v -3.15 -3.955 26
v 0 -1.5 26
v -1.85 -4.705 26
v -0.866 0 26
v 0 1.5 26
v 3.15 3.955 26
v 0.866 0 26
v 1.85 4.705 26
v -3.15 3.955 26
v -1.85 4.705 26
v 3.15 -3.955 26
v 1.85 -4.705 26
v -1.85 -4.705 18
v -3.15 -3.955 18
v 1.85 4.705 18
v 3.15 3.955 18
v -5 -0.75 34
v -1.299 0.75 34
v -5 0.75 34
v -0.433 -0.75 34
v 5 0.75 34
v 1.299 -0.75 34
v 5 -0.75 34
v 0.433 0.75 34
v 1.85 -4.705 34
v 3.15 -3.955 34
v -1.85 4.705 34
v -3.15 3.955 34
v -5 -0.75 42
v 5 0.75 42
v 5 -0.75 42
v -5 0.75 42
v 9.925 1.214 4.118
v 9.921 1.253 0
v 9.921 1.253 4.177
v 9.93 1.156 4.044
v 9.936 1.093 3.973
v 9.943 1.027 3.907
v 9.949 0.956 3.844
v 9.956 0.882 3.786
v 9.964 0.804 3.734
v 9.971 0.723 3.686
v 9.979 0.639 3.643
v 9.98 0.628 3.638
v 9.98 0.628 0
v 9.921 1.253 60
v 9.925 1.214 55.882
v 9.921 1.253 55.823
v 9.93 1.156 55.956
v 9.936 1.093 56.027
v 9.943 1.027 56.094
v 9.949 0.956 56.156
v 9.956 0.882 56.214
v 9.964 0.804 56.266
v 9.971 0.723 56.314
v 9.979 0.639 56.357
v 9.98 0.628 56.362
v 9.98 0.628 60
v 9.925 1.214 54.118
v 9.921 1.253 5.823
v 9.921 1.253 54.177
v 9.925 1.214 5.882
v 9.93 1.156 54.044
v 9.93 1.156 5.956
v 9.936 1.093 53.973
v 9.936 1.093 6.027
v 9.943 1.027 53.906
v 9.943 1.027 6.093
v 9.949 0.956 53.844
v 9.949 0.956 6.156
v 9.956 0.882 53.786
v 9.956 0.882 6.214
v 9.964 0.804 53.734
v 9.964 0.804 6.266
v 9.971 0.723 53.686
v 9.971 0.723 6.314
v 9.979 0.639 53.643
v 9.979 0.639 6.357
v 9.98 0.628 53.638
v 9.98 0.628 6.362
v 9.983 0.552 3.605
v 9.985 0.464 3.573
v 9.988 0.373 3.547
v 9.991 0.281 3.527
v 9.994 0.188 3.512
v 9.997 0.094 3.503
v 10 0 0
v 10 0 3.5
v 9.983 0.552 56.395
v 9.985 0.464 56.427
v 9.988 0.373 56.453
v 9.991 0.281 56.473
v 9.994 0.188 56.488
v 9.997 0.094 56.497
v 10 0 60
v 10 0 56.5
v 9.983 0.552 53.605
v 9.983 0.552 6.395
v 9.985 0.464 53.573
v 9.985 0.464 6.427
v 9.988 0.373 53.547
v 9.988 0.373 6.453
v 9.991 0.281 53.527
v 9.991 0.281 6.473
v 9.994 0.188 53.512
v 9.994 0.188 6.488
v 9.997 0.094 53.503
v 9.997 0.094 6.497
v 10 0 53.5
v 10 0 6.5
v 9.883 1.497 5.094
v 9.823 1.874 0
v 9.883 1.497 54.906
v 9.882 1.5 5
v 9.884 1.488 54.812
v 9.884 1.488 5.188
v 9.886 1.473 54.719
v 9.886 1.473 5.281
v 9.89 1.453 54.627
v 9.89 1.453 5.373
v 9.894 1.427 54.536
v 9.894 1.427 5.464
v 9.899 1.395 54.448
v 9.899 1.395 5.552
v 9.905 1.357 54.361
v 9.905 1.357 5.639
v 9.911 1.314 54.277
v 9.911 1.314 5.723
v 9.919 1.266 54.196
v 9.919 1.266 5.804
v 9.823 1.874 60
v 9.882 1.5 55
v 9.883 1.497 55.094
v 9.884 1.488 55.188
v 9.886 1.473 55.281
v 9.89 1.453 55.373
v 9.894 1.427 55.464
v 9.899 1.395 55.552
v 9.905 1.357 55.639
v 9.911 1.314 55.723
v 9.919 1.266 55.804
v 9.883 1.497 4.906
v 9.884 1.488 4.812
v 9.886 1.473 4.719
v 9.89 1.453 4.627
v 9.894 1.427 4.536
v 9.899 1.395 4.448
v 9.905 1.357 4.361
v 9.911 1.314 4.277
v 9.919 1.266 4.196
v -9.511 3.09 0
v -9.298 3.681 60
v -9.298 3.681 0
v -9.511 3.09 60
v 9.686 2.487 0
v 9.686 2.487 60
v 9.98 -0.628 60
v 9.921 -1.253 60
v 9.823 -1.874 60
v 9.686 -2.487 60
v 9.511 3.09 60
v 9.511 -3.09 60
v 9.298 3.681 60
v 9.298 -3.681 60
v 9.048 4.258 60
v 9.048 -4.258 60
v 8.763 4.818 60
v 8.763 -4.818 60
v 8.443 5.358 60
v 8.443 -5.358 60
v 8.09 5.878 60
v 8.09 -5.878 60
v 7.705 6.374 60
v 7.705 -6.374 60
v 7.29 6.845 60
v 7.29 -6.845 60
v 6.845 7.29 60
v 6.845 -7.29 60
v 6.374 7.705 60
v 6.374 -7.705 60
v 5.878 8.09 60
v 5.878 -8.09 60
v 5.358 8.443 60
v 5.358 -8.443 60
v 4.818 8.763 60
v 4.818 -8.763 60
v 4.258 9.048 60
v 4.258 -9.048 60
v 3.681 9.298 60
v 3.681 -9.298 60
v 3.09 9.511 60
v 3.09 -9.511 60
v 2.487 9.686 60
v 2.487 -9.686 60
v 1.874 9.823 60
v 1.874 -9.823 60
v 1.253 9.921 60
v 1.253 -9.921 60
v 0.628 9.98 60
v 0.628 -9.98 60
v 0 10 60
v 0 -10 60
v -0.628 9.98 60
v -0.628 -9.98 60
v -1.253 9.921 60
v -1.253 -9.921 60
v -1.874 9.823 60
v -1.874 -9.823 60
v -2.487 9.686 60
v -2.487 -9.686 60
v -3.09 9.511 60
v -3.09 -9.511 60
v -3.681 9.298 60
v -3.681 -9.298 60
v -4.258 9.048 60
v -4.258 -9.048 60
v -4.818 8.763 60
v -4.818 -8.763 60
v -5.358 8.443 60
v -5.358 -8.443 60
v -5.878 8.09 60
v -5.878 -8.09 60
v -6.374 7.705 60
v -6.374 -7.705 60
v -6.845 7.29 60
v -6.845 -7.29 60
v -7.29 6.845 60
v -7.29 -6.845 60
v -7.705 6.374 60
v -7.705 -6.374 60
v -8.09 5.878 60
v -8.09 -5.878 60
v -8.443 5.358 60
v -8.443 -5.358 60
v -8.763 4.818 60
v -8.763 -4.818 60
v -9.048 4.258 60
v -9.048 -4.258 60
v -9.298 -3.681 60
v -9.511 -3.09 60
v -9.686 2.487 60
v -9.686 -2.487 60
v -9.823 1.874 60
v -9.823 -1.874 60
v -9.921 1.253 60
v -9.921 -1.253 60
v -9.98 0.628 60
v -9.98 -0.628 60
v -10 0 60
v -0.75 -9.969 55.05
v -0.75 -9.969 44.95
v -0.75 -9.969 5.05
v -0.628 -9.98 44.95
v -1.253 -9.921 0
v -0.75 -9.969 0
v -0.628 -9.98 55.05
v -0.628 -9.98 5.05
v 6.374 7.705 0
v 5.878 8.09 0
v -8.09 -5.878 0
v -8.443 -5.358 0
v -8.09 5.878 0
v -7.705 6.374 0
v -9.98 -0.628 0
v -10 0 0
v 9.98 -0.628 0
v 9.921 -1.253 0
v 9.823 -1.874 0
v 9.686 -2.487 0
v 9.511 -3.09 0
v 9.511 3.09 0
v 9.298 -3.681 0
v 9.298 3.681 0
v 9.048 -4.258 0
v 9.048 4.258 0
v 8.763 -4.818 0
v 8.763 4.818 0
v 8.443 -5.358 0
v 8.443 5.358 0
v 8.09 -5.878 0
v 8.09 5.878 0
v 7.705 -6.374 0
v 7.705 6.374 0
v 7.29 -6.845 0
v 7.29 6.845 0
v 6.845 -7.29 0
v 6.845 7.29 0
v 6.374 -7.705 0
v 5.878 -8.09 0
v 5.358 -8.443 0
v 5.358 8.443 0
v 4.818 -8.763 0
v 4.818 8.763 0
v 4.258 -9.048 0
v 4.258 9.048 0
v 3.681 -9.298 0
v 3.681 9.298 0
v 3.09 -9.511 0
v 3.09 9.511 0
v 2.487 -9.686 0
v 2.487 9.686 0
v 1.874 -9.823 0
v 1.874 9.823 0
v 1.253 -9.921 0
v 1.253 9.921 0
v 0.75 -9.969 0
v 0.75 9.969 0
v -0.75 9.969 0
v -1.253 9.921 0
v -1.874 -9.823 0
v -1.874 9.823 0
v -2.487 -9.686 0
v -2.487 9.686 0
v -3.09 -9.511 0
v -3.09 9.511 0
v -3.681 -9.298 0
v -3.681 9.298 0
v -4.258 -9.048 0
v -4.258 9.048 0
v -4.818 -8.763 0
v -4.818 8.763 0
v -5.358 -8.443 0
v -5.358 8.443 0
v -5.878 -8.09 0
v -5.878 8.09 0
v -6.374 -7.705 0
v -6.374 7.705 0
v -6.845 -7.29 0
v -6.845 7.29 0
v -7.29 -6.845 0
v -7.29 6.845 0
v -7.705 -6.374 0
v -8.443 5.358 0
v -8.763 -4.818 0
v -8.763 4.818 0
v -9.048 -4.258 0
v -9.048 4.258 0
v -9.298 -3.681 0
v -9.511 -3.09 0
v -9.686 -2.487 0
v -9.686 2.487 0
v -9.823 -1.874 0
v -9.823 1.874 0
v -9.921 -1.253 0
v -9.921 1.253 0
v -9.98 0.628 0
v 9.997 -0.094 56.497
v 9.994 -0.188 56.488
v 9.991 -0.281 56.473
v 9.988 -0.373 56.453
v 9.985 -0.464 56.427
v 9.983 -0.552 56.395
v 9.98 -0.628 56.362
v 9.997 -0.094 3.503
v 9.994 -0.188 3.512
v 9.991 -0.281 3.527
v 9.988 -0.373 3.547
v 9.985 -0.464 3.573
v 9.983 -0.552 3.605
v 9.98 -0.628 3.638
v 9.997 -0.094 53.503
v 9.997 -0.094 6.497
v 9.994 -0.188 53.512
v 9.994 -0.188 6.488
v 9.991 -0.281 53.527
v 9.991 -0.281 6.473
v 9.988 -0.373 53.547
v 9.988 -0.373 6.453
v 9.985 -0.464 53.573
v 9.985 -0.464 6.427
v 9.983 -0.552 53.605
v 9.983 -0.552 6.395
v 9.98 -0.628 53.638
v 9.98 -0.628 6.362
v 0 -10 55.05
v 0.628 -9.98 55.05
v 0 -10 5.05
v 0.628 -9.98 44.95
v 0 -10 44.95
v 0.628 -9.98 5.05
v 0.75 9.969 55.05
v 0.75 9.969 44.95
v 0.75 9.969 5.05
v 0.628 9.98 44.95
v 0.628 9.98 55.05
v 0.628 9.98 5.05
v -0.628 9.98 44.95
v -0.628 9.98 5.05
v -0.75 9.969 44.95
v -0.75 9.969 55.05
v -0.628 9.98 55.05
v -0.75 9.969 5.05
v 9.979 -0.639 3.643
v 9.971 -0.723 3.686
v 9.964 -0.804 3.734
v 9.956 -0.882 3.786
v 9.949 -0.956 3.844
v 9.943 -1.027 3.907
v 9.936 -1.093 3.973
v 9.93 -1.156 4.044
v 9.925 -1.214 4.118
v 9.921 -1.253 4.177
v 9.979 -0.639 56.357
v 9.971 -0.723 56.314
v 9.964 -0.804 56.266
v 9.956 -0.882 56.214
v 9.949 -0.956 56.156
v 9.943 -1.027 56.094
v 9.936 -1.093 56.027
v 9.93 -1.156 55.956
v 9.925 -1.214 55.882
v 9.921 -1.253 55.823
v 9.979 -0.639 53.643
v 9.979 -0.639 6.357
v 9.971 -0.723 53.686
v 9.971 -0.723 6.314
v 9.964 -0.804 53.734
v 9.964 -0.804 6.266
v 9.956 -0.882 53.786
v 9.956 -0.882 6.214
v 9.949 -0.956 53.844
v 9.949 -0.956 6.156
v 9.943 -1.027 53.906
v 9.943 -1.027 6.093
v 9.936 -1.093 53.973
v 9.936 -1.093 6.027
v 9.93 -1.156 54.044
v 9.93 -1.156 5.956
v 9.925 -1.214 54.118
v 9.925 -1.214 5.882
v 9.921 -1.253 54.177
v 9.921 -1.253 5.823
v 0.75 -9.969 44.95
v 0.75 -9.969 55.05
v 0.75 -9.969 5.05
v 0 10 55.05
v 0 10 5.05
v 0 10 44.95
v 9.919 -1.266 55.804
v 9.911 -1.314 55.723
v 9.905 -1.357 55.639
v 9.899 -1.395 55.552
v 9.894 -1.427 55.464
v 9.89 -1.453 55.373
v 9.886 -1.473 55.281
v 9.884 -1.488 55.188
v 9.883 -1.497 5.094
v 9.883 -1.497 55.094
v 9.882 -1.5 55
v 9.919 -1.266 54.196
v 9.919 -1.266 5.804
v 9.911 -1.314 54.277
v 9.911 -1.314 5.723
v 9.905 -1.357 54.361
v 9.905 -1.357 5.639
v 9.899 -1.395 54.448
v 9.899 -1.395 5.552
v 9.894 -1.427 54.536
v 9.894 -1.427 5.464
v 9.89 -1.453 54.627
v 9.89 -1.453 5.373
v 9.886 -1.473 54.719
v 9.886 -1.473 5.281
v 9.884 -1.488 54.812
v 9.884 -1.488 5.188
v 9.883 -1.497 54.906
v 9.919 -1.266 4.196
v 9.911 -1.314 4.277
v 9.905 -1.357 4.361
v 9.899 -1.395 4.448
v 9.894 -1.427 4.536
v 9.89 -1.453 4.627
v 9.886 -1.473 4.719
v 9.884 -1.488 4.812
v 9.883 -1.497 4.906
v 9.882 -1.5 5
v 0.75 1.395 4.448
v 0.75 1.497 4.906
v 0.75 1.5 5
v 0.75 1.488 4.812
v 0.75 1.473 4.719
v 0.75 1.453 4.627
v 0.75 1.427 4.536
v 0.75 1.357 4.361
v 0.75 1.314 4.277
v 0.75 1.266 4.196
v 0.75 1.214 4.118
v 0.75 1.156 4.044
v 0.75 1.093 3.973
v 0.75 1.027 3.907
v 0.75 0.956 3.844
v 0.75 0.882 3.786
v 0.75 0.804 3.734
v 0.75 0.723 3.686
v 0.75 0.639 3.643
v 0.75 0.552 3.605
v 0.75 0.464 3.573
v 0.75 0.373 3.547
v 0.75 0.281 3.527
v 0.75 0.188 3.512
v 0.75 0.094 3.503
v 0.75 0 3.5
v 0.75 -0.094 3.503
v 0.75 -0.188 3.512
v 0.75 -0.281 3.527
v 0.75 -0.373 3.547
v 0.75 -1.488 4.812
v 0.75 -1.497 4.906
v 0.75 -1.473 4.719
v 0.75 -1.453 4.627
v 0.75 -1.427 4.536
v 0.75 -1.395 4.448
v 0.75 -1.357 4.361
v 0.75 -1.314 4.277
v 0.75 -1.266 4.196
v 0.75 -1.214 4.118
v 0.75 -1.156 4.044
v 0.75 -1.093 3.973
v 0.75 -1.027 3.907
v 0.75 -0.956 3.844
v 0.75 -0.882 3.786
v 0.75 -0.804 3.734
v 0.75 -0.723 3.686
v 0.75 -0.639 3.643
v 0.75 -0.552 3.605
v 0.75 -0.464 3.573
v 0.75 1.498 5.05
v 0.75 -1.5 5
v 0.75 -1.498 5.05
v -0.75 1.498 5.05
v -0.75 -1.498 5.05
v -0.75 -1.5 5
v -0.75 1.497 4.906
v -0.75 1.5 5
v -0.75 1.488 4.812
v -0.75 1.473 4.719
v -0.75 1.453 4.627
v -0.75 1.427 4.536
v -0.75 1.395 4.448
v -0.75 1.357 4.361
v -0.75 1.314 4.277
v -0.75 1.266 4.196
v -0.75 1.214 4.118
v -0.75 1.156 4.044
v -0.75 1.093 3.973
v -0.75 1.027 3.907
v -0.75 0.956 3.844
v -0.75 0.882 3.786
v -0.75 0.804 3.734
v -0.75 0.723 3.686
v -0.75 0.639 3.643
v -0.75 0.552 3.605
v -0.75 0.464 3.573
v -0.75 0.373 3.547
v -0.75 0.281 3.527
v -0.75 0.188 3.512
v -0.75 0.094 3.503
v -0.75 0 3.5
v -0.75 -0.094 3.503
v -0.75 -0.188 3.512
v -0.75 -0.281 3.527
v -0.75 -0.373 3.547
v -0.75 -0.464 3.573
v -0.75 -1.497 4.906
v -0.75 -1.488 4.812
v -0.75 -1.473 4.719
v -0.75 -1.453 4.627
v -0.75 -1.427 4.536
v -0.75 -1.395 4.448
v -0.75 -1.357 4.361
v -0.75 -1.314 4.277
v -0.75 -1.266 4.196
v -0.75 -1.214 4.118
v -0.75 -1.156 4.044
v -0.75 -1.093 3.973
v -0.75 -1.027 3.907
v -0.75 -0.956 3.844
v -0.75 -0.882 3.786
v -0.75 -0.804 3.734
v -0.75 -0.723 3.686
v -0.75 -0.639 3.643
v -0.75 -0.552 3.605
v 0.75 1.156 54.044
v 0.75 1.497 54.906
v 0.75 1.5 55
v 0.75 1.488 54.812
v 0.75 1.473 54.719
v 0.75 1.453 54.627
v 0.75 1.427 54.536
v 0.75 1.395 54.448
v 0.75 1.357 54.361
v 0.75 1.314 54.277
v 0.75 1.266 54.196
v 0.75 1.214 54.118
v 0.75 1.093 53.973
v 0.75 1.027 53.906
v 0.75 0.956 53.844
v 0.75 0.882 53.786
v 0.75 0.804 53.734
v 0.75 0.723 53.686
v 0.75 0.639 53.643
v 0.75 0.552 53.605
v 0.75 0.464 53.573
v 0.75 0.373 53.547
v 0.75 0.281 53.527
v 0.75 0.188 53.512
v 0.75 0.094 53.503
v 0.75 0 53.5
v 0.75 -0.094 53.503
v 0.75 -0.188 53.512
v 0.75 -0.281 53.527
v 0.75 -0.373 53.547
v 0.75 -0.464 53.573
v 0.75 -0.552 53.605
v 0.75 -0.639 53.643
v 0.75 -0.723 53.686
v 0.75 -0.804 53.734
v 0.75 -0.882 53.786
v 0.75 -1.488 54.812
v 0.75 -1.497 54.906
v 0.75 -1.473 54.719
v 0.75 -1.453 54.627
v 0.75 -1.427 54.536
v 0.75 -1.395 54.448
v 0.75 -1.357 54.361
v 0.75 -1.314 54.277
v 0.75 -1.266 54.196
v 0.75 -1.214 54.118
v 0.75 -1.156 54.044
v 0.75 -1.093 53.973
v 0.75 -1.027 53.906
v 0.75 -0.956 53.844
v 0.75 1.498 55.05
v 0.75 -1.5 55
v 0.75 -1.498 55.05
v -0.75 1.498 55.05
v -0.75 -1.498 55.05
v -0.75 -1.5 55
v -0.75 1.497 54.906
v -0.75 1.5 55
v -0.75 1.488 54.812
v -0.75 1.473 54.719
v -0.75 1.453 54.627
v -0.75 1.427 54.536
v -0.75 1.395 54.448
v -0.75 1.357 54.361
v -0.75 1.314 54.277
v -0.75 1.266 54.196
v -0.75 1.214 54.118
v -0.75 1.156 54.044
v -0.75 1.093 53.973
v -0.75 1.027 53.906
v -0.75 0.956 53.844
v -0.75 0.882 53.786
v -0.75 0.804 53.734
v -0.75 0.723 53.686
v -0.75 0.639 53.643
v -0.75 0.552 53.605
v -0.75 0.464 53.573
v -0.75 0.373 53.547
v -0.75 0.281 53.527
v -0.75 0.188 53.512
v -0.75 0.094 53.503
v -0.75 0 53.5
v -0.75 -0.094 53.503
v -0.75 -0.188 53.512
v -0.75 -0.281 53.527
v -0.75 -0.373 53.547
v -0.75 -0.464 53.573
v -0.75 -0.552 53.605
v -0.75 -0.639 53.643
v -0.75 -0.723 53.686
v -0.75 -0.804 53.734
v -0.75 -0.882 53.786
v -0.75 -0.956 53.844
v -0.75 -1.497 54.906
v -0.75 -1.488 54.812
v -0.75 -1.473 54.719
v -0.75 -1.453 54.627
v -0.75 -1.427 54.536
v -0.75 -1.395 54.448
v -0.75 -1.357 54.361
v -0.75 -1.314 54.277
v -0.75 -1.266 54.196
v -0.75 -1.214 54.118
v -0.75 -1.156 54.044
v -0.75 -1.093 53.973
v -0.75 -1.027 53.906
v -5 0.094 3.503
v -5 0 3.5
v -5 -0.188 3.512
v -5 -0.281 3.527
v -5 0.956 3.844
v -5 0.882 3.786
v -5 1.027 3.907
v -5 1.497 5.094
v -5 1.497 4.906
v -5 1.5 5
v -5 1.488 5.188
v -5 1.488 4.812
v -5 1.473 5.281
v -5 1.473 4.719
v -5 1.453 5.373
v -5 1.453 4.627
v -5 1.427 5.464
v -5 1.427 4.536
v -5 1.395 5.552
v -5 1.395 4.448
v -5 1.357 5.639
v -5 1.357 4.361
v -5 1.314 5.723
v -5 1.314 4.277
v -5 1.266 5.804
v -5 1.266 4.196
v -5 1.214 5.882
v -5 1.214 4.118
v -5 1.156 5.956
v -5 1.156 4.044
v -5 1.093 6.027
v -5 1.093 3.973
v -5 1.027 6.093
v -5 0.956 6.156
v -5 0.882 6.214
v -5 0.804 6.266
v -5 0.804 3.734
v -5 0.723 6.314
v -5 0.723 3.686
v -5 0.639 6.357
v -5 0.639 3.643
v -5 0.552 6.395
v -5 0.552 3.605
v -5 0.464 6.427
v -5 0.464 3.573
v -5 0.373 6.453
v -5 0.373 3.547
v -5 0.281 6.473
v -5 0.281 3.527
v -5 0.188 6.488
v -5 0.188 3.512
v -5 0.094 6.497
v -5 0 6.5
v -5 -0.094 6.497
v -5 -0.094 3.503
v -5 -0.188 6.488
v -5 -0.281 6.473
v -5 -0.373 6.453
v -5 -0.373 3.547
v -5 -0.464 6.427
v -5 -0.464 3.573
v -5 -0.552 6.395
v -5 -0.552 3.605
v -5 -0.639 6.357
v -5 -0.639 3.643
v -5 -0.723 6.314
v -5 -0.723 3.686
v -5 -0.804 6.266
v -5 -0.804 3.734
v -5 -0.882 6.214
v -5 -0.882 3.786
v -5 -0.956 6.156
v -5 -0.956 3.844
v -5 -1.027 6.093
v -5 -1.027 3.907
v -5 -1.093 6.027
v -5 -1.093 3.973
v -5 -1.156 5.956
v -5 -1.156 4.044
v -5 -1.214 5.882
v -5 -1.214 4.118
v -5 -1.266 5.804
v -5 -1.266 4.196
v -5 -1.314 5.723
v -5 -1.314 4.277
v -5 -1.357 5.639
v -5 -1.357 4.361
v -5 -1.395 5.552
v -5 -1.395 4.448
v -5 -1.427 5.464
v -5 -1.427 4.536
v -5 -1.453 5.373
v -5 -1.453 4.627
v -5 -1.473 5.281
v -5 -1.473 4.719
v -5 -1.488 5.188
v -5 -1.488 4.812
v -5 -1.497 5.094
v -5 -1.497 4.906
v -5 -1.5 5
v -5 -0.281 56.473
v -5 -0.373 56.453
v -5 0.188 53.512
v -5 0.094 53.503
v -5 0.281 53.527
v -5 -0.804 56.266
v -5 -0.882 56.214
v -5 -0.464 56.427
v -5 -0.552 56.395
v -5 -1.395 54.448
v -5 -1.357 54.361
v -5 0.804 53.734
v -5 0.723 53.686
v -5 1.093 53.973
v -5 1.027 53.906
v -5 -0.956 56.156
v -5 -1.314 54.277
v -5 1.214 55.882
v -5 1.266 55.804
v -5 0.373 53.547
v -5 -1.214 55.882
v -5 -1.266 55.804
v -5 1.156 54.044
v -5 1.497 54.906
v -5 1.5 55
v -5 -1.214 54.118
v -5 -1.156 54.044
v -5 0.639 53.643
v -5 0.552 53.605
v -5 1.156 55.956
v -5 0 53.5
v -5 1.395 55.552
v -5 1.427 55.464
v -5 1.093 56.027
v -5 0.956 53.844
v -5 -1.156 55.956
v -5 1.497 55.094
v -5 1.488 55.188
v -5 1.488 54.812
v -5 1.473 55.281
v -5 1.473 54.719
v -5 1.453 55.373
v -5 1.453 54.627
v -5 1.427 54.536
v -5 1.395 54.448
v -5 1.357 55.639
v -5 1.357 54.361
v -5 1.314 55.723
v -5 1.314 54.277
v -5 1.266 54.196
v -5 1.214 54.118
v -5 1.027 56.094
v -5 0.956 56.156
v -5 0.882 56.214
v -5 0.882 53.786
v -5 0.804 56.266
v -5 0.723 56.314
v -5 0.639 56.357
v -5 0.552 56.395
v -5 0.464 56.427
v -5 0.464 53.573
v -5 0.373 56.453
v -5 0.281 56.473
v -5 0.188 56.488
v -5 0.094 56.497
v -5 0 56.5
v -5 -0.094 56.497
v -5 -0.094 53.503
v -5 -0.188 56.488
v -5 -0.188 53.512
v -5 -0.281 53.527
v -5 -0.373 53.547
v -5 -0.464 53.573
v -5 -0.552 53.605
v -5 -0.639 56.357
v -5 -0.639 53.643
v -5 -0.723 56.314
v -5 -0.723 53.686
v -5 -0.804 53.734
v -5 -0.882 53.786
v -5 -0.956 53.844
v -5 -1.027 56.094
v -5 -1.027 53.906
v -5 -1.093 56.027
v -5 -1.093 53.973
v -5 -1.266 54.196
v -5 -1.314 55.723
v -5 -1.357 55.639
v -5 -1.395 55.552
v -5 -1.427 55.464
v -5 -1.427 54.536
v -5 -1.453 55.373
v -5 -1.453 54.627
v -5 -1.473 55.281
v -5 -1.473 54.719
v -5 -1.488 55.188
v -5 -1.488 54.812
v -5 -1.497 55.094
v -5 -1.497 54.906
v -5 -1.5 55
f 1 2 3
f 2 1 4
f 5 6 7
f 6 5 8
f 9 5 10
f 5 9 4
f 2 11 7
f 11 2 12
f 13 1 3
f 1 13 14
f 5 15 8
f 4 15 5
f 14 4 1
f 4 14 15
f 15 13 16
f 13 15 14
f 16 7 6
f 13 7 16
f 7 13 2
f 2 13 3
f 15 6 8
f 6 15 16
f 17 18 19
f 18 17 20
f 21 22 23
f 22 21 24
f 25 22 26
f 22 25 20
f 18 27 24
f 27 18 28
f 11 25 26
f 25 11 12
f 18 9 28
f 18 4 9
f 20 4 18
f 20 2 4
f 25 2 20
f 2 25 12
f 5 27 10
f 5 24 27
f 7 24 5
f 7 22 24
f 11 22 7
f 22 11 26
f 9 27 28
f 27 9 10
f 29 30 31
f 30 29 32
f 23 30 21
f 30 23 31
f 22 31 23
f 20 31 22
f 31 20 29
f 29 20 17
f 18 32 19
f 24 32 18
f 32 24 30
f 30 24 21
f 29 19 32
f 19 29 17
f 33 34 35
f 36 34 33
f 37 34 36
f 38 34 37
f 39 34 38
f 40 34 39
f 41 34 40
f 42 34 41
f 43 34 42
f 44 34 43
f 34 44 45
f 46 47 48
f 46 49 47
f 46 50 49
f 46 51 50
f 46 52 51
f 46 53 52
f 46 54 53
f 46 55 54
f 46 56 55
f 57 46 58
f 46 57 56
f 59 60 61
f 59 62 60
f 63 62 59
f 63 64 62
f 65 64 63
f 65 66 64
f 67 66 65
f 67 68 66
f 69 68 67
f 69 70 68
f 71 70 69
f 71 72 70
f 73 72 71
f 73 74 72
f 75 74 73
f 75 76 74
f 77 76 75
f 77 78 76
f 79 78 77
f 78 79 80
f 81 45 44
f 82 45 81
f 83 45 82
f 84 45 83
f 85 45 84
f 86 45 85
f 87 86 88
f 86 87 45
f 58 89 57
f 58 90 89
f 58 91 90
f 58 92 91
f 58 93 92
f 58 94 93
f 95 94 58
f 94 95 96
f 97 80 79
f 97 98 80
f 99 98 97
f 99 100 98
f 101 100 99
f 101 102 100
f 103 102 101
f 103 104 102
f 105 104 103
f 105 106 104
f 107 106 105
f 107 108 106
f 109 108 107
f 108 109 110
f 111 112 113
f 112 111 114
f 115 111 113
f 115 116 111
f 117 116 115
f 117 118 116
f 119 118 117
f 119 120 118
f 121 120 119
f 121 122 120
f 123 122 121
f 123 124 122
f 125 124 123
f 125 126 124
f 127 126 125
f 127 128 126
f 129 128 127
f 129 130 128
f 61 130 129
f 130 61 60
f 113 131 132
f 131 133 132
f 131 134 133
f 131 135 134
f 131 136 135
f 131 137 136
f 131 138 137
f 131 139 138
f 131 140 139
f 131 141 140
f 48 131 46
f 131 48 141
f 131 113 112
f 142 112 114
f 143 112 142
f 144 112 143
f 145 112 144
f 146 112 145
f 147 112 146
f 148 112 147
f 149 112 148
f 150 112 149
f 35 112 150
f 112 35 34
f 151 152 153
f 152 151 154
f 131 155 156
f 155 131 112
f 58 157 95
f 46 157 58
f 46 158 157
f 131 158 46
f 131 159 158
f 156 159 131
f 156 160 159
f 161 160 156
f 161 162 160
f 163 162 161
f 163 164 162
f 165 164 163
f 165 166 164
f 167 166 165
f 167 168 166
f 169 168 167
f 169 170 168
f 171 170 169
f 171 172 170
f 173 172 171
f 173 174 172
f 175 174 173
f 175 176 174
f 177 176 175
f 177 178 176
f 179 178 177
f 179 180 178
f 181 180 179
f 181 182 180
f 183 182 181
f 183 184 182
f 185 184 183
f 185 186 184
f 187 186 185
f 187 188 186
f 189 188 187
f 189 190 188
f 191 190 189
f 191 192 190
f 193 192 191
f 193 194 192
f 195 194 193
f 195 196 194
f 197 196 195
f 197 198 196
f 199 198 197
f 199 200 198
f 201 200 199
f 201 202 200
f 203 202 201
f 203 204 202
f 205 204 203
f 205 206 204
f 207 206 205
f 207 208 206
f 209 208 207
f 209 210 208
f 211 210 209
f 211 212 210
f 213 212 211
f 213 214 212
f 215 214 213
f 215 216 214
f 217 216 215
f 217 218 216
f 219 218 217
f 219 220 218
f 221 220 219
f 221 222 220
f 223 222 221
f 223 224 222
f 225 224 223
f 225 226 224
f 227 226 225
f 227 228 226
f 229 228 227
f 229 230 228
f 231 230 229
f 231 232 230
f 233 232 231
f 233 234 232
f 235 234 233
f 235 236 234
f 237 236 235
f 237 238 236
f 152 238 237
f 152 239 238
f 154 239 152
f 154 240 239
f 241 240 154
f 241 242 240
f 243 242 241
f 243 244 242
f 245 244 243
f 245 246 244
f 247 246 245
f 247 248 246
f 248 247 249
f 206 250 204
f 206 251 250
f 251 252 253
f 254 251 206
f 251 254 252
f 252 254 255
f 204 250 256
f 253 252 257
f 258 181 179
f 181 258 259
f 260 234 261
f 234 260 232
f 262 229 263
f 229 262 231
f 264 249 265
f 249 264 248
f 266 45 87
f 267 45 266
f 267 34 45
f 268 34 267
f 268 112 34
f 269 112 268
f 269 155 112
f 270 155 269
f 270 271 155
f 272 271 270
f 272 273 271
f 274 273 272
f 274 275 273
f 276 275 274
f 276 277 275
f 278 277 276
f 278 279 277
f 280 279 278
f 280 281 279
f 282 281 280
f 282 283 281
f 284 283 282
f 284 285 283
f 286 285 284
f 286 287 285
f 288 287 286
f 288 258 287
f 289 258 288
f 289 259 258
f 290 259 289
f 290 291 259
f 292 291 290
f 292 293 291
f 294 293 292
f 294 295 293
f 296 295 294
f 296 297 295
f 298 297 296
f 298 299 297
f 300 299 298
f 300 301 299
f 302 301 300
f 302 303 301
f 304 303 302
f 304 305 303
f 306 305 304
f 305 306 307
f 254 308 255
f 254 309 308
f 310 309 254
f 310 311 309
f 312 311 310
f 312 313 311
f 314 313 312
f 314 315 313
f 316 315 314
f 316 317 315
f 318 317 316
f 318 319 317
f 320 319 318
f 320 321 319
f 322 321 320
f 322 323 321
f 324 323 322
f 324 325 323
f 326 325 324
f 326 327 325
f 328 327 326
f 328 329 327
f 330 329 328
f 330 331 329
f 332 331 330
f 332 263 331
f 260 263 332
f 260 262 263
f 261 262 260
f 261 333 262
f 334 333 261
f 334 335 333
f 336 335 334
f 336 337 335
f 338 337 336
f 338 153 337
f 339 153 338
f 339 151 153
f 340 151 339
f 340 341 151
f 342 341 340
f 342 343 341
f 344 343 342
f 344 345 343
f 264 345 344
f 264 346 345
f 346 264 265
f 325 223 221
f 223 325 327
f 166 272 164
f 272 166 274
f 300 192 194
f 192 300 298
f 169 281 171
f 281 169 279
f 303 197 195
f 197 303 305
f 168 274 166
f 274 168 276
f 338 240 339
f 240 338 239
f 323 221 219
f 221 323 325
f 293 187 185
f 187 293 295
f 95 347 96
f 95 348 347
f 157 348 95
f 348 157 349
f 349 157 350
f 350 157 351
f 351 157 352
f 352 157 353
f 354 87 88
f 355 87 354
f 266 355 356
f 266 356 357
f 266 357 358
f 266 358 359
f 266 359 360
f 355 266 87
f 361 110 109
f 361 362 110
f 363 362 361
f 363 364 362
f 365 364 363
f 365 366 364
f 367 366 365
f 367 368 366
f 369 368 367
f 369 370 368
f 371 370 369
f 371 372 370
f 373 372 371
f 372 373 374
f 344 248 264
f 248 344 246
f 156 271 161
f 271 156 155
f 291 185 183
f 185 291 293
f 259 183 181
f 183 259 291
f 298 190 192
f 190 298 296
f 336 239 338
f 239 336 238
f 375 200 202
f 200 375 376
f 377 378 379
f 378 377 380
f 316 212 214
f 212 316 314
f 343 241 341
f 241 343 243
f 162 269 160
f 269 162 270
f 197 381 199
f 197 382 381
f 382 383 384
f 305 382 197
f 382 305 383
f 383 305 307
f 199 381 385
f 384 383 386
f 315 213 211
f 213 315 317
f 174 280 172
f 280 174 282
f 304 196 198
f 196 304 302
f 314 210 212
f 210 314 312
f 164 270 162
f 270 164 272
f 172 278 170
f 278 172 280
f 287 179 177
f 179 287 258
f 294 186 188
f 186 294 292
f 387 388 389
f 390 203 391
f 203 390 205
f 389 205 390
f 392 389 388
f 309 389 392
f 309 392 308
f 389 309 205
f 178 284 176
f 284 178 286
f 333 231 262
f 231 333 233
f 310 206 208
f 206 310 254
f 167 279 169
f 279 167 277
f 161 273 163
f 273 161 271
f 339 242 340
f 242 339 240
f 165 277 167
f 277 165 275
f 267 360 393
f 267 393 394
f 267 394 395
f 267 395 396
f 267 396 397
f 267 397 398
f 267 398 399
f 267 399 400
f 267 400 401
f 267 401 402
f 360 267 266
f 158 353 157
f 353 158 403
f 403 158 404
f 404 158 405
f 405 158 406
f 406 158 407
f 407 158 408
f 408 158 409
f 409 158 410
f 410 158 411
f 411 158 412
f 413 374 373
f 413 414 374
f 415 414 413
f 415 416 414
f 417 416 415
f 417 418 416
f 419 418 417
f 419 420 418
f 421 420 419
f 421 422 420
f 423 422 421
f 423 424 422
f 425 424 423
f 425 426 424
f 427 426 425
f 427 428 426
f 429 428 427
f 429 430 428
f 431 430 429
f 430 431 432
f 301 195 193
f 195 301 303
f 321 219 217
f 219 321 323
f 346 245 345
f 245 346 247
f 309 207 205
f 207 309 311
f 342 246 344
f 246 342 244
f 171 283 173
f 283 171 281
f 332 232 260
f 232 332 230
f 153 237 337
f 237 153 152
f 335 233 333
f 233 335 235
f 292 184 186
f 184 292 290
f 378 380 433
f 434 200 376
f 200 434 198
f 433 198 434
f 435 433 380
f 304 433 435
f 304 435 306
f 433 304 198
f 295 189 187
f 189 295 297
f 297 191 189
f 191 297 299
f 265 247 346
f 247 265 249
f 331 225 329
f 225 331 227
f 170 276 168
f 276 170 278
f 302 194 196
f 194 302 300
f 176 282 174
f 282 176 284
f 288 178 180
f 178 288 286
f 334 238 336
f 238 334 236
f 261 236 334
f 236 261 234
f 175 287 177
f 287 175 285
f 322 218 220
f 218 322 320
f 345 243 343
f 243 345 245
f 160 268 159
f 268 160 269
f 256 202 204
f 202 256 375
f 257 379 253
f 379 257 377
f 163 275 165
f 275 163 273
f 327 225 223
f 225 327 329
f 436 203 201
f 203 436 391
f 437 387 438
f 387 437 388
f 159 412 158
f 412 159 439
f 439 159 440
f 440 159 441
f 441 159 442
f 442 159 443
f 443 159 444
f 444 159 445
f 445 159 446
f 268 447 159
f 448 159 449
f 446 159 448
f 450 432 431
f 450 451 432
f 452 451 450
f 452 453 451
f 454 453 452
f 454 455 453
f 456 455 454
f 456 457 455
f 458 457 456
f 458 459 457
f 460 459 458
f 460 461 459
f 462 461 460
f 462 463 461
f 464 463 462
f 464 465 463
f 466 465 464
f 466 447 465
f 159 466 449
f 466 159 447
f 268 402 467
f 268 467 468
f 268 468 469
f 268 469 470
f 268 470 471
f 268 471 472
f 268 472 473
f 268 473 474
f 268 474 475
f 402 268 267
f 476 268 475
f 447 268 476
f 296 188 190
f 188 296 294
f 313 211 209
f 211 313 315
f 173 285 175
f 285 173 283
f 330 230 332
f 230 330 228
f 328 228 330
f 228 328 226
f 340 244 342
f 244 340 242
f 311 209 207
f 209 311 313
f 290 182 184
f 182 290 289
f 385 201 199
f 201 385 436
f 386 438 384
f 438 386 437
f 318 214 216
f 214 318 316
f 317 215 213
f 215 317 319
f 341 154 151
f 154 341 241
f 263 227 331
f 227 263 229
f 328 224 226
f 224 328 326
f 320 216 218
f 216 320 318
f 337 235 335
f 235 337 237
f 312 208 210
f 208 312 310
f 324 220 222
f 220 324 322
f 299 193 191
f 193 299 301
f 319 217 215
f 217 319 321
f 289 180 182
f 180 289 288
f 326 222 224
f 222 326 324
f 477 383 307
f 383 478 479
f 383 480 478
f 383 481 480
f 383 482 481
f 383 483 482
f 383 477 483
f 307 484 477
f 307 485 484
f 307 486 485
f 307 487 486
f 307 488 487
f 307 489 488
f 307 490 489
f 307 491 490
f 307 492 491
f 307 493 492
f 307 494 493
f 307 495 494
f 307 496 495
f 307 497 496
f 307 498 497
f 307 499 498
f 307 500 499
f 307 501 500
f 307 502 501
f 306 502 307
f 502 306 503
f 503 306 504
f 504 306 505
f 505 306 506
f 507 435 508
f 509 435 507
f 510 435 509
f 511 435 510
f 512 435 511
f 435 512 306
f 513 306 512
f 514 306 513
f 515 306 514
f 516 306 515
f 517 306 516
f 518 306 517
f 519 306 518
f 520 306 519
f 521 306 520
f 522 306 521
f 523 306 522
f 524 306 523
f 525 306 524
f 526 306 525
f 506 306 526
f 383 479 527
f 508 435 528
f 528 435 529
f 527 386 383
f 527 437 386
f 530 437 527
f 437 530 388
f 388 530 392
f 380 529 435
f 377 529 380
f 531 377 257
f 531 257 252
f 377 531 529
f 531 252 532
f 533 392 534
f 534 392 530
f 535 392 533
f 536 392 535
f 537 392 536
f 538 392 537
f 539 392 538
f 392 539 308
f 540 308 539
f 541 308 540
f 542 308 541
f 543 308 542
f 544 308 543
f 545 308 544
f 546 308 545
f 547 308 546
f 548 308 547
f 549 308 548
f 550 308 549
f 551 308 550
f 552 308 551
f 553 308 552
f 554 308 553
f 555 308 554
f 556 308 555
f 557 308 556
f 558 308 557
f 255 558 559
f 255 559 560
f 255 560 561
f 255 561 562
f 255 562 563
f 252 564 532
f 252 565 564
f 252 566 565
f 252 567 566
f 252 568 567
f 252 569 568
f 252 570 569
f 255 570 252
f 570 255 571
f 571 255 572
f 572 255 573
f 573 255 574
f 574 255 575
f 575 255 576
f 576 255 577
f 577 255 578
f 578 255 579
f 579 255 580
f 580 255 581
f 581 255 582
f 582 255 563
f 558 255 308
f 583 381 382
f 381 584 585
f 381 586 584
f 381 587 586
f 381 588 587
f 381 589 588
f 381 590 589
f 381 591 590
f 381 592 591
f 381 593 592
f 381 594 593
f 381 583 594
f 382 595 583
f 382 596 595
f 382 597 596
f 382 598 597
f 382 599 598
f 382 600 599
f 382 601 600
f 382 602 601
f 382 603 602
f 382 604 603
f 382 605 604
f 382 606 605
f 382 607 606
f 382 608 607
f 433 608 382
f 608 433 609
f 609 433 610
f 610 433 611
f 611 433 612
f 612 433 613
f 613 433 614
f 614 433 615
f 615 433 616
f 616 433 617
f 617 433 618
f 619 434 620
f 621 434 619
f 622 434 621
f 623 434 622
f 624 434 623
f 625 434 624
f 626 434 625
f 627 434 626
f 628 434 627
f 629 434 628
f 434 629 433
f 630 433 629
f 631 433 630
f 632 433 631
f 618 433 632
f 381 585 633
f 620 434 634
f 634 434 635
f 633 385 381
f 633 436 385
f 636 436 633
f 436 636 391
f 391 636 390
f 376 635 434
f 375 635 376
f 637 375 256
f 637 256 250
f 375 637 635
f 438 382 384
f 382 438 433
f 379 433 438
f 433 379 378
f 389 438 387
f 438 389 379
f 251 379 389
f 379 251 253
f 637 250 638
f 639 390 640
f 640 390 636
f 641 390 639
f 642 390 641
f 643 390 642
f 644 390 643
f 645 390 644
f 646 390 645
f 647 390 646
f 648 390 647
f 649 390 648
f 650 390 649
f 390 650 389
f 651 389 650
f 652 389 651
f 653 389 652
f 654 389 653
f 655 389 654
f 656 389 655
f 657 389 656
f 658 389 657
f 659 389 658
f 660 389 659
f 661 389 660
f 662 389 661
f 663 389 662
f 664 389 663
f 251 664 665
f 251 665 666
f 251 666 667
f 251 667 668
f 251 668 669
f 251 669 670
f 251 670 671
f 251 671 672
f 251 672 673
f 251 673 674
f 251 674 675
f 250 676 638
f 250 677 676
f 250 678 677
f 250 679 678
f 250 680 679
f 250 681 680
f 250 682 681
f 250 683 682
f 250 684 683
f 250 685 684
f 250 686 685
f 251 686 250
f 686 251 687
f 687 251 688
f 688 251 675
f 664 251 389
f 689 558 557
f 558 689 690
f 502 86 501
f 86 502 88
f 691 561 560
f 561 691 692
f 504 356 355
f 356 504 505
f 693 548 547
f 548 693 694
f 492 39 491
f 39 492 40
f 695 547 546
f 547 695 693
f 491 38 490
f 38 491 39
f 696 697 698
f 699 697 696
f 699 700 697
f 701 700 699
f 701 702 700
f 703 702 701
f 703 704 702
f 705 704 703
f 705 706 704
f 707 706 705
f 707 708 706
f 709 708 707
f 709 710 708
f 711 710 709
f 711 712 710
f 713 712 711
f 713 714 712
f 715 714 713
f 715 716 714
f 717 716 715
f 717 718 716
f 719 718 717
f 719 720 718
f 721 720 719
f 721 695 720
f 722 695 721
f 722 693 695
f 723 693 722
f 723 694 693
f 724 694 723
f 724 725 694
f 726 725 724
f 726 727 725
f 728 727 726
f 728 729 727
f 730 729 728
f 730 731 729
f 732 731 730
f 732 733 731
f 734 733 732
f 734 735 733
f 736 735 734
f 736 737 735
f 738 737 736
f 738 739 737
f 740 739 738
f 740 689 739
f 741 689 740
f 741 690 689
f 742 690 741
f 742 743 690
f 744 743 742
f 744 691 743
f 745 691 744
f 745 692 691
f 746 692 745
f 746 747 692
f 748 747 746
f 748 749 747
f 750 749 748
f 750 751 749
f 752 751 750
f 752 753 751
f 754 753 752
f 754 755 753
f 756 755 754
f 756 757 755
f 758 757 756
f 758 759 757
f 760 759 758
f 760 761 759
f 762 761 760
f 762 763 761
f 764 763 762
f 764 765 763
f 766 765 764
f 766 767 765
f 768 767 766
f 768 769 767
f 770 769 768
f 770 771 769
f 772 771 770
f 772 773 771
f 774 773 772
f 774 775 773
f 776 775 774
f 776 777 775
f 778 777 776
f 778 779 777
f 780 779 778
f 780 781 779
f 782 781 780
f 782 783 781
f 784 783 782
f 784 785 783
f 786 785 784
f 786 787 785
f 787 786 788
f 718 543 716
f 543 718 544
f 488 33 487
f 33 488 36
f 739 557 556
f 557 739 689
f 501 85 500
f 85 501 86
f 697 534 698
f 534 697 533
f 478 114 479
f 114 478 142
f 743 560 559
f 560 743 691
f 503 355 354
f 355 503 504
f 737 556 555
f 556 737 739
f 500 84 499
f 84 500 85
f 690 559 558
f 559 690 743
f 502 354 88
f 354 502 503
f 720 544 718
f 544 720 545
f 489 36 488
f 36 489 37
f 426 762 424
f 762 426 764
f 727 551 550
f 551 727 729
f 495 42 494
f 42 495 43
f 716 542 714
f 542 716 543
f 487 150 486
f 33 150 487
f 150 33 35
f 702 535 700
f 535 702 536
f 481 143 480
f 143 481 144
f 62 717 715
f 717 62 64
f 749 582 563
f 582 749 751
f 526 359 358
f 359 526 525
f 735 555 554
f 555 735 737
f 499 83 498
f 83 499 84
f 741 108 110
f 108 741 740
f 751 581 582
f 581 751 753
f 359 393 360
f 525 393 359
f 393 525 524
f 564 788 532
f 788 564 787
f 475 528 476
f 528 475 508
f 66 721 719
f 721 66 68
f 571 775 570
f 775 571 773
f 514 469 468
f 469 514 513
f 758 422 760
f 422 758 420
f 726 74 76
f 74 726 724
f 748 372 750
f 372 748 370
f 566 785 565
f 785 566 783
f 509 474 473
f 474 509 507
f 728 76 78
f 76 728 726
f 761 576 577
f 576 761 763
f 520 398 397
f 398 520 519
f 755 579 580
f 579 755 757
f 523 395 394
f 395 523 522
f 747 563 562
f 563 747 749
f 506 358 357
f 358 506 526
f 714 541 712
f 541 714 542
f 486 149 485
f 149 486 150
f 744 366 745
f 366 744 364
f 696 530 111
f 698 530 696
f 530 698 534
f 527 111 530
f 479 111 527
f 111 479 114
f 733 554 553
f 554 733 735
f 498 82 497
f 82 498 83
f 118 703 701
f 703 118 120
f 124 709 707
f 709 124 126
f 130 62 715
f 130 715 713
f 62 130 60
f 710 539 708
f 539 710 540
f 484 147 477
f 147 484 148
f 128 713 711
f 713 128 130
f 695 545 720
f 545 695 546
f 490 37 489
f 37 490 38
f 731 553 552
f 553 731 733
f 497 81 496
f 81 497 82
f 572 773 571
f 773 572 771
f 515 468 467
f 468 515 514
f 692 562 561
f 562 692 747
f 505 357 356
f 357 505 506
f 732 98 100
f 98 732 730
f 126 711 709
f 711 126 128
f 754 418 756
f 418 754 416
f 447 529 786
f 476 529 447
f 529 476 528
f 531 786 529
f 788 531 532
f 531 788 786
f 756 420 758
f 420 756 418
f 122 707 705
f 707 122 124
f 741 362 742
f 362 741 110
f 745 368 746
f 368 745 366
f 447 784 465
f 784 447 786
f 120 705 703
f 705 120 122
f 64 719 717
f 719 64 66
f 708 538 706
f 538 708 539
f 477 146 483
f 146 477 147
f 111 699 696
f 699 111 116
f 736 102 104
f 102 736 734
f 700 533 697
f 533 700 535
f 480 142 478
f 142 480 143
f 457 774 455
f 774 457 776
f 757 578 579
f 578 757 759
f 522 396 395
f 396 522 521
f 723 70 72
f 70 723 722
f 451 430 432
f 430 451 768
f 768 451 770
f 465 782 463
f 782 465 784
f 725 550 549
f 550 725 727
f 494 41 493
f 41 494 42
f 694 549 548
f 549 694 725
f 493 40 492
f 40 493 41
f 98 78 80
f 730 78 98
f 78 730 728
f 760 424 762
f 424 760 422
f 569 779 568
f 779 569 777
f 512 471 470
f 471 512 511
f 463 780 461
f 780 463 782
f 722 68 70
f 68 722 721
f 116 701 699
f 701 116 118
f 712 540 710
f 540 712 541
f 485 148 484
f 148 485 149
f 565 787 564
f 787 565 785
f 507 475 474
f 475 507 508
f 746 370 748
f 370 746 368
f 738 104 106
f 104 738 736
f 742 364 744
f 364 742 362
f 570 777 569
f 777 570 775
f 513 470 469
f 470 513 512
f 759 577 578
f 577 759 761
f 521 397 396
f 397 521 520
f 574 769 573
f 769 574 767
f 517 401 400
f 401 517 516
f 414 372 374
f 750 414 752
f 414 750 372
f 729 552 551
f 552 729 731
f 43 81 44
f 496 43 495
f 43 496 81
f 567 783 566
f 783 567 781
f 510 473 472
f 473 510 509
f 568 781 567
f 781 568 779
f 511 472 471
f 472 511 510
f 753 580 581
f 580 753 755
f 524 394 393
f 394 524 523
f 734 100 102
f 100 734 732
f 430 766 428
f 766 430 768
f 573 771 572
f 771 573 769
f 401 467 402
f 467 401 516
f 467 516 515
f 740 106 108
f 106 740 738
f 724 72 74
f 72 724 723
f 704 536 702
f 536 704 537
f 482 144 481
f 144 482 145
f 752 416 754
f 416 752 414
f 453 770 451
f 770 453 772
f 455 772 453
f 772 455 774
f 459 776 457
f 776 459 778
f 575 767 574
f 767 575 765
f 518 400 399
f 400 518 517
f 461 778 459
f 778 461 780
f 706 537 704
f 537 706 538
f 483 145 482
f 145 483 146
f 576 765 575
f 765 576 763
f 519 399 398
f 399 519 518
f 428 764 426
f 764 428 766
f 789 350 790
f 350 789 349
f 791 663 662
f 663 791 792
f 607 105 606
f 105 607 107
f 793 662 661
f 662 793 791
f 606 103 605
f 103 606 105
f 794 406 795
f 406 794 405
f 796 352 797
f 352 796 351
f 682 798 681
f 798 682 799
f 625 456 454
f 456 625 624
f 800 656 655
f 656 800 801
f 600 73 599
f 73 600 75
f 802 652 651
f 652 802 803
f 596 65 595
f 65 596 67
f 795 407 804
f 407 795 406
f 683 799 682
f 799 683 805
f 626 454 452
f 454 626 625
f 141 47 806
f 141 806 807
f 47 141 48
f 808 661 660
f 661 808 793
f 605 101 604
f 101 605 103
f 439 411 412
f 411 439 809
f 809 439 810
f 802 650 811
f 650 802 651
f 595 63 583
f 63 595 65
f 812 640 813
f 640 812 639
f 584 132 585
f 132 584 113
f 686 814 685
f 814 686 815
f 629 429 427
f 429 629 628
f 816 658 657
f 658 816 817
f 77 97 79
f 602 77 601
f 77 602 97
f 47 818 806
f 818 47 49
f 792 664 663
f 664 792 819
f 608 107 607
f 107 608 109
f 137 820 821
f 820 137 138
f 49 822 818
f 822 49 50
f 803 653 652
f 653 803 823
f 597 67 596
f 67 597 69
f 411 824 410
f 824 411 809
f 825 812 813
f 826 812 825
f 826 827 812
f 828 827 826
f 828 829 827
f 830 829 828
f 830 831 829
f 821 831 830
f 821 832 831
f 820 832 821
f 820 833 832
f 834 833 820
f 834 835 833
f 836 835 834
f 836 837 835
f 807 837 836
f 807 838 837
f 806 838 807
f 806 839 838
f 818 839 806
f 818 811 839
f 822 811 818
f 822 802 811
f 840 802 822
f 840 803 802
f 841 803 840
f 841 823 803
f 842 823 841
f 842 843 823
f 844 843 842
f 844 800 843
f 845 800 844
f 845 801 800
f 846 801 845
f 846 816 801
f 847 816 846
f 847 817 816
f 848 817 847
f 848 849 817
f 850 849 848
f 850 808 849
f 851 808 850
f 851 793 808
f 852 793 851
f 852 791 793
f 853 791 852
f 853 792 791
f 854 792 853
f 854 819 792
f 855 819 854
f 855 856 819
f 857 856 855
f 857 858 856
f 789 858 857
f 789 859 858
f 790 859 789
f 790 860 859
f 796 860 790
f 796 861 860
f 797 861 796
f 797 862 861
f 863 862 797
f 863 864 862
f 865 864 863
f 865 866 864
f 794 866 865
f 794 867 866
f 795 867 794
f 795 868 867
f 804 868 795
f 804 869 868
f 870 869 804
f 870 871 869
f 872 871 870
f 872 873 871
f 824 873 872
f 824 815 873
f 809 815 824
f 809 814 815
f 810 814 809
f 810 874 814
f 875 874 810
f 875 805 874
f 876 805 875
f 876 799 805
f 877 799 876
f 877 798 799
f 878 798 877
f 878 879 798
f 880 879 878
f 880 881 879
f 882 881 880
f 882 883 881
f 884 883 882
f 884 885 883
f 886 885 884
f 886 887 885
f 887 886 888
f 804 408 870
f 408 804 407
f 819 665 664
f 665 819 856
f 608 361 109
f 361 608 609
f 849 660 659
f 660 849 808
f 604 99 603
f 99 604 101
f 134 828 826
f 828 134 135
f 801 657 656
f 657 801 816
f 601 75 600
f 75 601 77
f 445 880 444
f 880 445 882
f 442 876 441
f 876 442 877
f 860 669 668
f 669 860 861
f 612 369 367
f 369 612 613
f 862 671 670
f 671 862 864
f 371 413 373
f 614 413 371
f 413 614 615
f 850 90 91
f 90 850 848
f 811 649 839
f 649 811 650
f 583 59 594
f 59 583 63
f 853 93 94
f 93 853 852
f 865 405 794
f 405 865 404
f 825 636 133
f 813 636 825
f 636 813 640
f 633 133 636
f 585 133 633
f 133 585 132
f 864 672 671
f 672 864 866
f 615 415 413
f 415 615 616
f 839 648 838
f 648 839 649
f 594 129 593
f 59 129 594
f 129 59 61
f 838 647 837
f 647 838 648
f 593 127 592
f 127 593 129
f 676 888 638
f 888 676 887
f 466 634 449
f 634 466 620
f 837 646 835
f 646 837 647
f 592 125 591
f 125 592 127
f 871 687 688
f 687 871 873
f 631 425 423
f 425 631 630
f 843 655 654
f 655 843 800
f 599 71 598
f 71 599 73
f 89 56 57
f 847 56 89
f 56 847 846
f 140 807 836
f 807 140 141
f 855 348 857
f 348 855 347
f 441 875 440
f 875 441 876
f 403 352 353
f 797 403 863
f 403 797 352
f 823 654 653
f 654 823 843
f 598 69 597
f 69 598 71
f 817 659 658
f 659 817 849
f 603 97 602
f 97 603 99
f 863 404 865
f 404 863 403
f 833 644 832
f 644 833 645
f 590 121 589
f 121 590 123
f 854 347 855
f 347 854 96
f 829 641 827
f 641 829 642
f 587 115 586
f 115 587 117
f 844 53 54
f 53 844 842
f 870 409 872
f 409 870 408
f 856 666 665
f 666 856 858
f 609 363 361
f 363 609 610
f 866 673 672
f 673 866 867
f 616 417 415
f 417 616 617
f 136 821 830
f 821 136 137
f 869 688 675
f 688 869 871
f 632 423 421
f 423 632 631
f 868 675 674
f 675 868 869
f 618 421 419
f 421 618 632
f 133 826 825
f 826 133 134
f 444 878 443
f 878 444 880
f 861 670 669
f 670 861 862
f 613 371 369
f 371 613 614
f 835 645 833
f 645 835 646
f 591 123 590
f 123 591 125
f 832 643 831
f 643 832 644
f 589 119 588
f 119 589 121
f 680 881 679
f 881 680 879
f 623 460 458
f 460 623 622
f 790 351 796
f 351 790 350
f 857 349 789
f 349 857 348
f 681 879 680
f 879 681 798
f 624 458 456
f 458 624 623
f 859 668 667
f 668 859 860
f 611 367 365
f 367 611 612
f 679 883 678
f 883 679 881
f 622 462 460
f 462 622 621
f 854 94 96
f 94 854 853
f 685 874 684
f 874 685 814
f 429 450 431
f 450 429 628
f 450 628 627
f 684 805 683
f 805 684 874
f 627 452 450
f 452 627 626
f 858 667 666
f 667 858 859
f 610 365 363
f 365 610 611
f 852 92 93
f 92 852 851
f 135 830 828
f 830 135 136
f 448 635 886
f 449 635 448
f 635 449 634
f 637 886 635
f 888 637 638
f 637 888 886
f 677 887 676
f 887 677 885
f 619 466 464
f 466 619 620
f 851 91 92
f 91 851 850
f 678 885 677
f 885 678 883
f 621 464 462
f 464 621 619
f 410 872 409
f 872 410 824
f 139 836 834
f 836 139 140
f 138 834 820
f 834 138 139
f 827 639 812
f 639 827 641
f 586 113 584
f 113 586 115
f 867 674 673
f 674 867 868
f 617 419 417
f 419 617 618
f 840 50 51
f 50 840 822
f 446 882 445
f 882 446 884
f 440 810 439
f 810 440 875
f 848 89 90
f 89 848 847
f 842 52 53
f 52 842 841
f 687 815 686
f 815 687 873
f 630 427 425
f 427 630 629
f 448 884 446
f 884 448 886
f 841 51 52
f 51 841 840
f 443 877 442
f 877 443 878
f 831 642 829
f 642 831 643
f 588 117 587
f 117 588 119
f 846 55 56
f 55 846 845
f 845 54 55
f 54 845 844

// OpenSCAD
$fn = 100; // Smoothness

// Parameters
coupling_length = 60;
coupling_diameter = 20;
clamp_length = 10;
flex_length = 40;
slot_width = 1.5;
slot_depth = 5;
screw_hole_diameter = 3;
screw_hole_offset = 5;

// Main body
module central_body() {
    difference() {
        cylinder(h = coupling_length, d = coupling_diameter);
        // Axial slot (for clamping)
        translate([0, 0, 0])
            rotate([0, 0, 0])
                cube([slot_width, coupling_diameter, clamp_length + 0.1], center = true);
        translate([0, 0, coupling_length - clamp_length])
            rotate([0, 0, 0])
                cube([slot_width, coupling_diameter, clamp_length + 0.1], center = true);
        // Flexible slots (simplified as curved cuts)
        for (i = [1:3]) {
            rotate([0, 0, i * 60])
                translate([-slot_depth, -slot_width/2, clamp_length + i * 8])
                    cube([slot_depth * 2, slot_width, 8]);
        }
    }
}

// Fastening screws
module fastening_screw(z_pos) {
    translate([coupling_diameter/2 - screw_hole_offset, 0, z_pos])
        rotate([0, 90, 0])
            cylinder(h = coupling_diameter, d = screw_hole_diameter, center = true);
}

// Assembly
difference() {
    central_body();
    // Top screw
    fastening_screw(clamp_length / 2);
    // Bottom screw
    fastening_screw(coupling_length - clamp_length / 2);
}
